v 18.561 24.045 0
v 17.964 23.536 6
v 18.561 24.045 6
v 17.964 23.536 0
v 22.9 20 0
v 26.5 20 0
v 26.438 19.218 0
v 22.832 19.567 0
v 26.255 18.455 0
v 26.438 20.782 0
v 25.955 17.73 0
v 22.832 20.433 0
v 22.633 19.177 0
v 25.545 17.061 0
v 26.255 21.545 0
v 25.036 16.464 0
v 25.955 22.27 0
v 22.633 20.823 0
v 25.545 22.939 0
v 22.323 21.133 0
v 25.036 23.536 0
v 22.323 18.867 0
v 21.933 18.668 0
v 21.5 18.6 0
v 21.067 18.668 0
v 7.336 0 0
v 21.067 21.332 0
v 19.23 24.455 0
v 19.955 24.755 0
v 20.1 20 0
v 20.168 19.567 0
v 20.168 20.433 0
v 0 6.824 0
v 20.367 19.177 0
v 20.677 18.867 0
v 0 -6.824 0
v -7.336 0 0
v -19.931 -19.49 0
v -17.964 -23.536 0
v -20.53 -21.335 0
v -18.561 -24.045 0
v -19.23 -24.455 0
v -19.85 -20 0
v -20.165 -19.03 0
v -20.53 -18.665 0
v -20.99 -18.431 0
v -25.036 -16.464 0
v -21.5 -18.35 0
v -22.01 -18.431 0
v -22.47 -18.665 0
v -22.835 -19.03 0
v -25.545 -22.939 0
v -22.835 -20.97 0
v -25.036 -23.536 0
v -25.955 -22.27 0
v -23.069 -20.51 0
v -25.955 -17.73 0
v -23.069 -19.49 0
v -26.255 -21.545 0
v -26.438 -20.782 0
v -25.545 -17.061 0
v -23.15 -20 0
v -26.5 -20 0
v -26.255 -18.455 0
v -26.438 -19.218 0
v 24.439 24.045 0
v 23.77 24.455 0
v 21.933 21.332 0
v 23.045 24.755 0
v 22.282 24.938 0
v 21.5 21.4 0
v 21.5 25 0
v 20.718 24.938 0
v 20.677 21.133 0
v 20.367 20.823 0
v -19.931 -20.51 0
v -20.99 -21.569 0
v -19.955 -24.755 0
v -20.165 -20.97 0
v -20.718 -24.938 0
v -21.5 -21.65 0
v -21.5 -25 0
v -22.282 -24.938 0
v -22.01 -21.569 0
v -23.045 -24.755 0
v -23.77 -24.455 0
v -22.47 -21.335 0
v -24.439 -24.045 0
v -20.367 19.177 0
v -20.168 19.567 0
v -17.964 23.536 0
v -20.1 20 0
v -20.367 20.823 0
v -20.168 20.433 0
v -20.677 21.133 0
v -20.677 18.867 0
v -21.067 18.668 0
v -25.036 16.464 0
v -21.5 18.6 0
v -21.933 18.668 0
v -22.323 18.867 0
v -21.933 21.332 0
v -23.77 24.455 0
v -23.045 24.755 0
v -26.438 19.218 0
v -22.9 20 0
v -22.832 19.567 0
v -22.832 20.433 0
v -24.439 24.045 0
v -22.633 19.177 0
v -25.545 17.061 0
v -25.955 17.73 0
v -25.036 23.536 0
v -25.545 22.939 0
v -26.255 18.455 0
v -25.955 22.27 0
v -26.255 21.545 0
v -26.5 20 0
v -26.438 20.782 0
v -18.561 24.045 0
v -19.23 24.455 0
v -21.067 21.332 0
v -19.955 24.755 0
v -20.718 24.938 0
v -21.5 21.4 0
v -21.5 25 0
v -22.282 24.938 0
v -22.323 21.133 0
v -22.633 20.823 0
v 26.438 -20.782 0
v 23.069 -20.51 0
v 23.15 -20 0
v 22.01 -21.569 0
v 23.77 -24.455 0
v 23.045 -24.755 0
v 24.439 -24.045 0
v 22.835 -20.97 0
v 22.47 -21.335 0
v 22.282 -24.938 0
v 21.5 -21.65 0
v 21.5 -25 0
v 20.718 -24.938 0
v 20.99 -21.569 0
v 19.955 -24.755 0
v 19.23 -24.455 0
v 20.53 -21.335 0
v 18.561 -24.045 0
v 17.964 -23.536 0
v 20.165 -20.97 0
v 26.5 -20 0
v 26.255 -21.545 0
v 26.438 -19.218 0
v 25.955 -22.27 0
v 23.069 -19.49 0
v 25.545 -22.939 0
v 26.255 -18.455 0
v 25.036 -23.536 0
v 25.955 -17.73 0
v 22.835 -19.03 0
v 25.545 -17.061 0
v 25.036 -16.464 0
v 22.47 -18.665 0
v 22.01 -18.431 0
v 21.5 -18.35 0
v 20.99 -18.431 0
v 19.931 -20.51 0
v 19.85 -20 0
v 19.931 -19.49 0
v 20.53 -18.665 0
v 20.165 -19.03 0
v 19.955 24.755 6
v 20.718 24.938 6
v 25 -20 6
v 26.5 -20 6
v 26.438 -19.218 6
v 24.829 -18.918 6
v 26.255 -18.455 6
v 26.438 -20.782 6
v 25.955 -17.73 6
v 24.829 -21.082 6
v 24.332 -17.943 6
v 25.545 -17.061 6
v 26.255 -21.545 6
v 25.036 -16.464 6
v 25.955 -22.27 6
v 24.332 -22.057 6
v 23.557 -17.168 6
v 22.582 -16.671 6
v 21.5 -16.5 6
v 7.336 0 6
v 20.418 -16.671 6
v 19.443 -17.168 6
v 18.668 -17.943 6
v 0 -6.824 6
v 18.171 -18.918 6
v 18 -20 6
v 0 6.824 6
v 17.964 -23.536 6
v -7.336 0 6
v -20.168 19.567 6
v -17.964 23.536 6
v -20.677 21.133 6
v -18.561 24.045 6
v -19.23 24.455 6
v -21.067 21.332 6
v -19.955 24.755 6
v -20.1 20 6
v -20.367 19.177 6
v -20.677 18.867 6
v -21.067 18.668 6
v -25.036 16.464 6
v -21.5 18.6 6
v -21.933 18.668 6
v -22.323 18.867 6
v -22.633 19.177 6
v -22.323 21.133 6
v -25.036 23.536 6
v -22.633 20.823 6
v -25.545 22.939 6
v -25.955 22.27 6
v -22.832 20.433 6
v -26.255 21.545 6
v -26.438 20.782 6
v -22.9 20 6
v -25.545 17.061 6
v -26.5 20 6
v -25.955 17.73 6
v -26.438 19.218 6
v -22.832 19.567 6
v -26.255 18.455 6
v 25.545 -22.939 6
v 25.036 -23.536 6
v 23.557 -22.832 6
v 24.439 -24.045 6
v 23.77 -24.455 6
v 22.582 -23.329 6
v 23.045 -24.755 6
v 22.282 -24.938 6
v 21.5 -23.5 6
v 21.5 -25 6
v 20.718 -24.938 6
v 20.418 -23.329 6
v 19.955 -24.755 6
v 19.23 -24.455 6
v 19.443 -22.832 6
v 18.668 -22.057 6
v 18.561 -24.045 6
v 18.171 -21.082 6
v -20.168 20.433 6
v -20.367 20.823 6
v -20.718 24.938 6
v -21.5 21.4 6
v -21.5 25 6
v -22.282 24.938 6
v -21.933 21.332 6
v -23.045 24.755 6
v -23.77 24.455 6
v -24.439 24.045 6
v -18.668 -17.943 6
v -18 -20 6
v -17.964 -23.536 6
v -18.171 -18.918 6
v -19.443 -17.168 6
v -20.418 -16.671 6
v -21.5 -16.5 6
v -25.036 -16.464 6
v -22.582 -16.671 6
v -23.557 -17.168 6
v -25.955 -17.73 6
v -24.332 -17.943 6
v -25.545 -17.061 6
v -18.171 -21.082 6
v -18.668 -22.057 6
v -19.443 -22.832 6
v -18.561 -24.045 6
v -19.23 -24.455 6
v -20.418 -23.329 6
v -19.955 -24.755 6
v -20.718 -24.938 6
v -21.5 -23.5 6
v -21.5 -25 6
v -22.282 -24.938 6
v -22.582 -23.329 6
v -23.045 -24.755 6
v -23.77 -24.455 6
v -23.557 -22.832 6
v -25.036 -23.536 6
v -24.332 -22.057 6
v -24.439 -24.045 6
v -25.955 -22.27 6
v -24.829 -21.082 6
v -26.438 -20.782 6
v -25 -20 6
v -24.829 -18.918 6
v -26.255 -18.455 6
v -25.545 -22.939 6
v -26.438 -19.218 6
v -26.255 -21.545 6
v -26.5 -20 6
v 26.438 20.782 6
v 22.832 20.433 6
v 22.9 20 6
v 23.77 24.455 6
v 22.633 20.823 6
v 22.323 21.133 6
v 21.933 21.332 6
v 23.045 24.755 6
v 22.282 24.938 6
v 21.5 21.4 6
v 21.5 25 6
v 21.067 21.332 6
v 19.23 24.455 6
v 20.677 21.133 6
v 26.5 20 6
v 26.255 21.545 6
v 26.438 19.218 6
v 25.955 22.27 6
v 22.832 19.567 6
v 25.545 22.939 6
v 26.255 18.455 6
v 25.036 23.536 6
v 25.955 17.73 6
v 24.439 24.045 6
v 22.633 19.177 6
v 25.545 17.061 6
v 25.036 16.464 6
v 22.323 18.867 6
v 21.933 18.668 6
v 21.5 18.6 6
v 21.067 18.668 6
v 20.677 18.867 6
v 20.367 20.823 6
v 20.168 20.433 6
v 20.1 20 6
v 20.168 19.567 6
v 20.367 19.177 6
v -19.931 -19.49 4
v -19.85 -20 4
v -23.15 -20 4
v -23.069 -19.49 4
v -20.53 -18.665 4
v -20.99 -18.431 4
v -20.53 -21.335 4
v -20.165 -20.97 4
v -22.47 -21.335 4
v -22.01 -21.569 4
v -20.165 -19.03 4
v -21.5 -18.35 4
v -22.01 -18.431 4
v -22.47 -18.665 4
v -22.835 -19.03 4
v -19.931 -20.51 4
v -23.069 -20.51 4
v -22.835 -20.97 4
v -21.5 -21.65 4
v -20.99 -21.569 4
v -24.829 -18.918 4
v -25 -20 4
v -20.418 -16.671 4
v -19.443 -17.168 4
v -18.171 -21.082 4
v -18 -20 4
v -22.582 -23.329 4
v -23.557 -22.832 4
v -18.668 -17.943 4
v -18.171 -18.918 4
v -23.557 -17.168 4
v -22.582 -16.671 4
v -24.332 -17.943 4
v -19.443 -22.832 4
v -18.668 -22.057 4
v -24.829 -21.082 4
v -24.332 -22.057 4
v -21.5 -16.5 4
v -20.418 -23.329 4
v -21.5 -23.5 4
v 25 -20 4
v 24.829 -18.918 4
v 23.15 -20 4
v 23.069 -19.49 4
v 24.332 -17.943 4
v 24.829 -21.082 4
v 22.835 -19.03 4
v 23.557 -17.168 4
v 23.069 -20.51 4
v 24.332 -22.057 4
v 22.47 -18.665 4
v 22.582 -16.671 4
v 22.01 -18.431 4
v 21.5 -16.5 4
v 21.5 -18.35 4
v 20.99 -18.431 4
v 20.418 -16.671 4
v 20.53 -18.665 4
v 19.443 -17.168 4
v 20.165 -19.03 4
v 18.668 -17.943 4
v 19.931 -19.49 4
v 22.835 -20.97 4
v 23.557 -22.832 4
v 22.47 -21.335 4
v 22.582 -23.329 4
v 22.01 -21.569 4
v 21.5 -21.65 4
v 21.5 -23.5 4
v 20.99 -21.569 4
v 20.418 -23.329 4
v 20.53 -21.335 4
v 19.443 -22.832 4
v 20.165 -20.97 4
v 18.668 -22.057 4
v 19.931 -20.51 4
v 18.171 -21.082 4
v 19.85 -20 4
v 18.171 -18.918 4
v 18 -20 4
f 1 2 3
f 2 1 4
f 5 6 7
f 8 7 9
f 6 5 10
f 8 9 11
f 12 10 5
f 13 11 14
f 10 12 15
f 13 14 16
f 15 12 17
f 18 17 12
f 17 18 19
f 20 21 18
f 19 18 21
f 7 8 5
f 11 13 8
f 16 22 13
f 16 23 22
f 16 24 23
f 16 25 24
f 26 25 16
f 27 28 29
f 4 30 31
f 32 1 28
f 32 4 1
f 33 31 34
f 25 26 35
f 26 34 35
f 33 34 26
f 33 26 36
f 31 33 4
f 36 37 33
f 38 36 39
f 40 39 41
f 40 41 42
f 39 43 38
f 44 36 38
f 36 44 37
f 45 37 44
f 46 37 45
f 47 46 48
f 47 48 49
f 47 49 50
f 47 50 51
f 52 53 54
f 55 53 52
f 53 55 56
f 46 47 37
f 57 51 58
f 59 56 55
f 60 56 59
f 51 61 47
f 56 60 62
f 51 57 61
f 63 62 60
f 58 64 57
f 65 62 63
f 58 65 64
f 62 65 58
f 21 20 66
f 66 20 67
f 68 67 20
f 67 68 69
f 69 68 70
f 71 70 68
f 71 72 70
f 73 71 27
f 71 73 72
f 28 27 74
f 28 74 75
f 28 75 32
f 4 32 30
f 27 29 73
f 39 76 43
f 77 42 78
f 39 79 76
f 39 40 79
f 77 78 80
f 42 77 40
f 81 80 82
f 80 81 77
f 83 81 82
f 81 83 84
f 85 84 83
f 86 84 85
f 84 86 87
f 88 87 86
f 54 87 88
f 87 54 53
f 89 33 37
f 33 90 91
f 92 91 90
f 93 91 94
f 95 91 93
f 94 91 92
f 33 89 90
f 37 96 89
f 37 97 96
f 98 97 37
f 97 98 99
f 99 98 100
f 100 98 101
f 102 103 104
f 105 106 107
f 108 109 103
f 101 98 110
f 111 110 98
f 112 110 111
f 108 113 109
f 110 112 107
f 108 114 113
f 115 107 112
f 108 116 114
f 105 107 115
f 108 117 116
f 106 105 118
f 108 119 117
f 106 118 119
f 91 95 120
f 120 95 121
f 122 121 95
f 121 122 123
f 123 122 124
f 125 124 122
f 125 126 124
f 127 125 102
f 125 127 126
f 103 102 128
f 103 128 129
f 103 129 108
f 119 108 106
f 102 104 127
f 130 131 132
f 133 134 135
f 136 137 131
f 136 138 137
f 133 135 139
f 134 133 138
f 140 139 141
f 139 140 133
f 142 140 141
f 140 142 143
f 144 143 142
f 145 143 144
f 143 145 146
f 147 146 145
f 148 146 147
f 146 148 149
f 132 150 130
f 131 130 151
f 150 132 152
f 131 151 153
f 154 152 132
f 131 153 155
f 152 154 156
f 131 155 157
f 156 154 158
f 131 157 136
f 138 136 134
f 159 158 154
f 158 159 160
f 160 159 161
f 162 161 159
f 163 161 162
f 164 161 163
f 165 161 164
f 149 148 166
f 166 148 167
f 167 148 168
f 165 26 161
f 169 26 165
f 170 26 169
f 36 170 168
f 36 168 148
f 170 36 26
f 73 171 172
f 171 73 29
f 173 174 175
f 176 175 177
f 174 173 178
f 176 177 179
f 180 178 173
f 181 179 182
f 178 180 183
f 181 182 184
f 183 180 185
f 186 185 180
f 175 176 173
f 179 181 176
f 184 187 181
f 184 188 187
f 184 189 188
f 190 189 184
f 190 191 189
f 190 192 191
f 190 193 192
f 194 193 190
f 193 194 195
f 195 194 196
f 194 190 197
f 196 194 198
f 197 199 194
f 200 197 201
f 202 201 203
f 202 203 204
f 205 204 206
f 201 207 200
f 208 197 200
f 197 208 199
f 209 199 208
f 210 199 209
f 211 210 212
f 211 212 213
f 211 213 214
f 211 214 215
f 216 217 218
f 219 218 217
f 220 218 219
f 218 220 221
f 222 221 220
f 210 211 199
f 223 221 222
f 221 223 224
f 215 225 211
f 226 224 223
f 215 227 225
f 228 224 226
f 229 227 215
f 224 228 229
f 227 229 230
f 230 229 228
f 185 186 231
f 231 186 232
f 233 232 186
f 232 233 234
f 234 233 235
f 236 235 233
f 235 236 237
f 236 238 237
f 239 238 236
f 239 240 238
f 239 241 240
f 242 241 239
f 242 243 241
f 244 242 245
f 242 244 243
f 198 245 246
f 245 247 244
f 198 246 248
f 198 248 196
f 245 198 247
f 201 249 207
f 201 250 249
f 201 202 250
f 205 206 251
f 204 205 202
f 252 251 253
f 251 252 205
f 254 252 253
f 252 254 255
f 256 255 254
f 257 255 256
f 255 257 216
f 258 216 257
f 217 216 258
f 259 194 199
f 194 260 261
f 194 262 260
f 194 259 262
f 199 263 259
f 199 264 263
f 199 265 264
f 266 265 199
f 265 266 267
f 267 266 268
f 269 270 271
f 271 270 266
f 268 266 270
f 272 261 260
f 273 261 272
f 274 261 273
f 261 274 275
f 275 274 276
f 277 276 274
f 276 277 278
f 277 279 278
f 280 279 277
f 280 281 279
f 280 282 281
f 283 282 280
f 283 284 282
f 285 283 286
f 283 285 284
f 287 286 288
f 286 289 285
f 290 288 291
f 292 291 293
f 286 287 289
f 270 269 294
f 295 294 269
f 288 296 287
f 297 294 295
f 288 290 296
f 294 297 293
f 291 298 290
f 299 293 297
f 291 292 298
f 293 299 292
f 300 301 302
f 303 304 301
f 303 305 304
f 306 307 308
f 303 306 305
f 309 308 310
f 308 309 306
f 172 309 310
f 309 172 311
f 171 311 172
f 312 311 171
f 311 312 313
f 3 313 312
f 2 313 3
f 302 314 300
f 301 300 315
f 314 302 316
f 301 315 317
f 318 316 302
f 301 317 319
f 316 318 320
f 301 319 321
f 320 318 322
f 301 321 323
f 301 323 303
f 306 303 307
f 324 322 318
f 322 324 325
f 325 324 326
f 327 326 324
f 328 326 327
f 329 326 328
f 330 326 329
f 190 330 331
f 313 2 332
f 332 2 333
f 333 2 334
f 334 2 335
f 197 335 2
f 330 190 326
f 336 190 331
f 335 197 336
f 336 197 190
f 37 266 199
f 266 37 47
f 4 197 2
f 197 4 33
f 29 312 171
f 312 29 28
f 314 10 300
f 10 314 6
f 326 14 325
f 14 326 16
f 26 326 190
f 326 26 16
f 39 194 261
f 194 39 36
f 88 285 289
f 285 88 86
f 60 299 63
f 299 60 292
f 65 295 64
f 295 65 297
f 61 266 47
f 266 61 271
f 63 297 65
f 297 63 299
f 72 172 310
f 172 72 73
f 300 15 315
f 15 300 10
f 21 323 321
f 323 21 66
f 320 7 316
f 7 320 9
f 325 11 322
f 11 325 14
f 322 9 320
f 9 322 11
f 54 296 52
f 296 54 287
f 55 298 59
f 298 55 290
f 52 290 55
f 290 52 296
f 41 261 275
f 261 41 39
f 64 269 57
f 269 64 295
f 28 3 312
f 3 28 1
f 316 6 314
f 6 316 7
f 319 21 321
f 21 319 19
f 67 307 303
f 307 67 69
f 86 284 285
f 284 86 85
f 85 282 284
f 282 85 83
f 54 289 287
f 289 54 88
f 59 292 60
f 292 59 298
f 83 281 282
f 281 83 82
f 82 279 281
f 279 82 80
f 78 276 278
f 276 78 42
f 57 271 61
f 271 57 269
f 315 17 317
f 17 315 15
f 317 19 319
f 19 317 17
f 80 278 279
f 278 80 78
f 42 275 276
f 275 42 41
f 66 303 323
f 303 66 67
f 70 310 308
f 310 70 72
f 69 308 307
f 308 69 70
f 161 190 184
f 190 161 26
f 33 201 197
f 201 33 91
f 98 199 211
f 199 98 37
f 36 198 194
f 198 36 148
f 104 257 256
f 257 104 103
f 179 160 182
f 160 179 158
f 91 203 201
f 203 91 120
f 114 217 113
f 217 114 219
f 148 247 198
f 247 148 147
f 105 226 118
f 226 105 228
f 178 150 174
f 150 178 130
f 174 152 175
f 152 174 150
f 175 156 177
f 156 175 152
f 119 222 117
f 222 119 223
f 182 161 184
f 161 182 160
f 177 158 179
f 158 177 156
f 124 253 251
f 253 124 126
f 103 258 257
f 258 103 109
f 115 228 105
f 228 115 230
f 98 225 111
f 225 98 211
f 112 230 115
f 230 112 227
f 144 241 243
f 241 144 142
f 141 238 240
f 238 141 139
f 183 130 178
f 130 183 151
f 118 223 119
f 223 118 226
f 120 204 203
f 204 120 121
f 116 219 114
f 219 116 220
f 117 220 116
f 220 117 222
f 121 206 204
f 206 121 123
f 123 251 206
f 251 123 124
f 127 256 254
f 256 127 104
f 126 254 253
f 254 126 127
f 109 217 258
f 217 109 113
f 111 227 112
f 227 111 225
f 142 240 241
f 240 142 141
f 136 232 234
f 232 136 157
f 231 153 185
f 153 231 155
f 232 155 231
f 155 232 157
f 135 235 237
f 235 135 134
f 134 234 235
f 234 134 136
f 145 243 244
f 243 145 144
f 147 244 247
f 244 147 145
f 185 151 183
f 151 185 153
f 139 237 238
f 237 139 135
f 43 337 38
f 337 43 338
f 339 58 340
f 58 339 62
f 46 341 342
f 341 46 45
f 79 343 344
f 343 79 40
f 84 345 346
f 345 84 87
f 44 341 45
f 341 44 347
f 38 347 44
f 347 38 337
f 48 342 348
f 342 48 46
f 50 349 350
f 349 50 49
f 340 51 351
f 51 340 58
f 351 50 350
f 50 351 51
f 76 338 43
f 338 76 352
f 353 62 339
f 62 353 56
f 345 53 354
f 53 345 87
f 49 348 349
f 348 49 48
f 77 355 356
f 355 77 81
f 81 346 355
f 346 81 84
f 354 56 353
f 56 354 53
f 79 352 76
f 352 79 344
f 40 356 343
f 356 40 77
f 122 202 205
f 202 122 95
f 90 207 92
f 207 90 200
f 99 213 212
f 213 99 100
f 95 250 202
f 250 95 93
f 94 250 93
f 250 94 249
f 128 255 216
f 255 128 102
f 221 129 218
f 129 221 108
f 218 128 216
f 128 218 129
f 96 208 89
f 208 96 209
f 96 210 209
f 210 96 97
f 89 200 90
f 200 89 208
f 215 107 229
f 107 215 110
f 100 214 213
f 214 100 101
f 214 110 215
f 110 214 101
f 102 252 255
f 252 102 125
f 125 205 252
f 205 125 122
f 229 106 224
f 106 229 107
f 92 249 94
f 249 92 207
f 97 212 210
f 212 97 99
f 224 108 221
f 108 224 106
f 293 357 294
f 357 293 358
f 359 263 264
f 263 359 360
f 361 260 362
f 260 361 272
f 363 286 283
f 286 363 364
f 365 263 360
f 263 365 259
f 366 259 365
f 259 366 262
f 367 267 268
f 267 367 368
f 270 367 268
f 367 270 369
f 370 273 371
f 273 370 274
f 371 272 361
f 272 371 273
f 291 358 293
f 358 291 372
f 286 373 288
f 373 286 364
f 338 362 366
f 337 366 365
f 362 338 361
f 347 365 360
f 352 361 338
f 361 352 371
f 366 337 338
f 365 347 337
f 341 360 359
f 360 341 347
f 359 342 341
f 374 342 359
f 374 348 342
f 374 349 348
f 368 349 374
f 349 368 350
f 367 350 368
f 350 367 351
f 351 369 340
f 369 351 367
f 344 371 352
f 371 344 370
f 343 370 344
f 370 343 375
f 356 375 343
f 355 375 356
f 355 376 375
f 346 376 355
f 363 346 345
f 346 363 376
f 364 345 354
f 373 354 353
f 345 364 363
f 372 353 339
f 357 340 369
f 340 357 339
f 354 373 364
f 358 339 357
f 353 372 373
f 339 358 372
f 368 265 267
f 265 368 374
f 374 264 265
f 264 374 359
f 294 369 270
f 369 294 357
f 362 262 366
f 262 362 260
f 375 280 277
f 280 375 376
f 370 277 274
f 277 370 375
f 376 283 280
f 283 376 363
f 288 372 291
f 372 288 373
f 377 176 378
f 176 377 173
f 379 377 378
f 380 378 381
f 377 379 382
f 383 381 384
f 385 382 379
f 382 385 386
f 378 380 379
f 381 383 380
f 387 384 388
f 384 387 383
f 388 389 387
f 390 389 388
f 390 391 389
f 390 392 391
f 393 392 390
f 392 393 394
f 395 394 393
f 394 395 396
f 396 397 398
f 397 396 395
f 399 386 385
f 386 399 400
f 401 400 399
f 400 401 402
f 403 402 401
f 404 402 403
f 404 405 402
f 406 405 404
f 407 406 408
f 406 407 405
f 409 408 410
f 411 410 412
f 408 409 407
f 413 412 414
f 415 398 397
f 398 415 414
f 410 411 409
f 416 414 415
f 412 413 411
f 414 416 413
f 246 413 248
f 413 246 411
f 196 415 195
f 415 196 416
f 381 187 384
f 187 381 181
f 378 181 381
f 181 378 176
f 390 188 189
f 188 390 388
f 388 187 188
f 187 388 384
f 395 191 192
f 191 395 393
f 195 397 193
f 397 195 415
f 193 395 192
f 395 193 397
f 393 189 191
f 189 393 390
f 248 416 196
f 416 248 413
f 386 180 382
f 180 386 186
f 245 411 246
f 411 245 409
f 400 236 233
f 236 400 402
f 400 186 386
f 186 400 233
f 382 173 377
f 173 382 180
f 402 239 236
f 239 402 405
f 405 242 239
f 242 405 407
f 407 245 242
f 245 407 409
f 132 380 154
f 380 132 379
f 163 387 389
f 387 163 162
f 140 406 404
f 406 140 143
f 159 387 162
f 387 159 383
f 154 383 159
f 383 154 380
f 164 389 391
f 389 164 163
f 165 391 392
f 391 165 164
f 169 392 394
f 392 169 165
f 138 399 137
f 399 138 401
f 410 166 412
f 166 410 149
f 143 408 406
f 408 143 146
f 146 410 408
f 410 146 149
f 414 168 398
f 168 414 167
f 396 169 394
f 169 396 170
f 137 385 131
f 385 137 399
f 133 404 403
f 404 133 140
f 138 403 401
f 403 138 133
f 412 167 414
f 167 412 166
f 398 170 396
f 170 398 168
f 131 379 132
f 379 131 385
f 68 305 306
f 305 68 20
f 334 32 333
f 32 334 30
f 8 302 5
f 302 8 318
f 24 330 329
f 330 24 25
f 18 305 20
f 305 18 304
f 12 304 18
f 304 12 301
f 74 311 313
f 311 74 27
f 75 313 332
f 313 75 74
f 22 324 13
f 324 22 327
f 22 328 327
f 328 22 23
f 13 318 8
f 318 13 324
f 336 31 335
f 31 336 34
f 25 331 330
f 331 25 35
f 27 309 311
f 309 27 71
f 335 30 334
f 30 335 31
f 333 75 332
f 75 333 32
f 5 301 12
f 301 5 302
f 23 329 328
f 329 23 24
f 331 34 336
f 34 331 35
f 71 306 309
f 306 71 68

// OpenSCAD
difference() {
    //translate([0,0,4/2]) cube([48,45,4],center=true);
    union() {
        hull() {
            translate([-43/2,-20,0]) cylinder(d=10,h=6,$fn=40);
            translate([43/2,20,0]) cylinder(d=10,h=6,$fn=40);
        }
        hull() {
            translate([43/2,-20,0]) cylinder(d=10,h=6,$fn=40);
            translate([-43/2,20,0]) cylinder(d=10,h=6,$fn=40);
        }

    }
    
    translate([-43/2,-20,-0.01]) cylinder(d=3.3,h=7,$fn=20);
    translate([-43/2,20,-0.01]) cylinder(d=2.8,h=7,$fn=20);
    
    translate([-43/2,-20,4]) cylinder(d=7,h=7,$fn=20);
    translate([43/2,-20,4]) cylinder(d=7,h=7,$fn=20);
    
    translate([43/2,-20,-0.01]) cylinder(d=3.3,h=7,$fn=20);
    translate([43/2,20,-0.01]) cylinder(d=2.8,h=7,$fn=20);

}
